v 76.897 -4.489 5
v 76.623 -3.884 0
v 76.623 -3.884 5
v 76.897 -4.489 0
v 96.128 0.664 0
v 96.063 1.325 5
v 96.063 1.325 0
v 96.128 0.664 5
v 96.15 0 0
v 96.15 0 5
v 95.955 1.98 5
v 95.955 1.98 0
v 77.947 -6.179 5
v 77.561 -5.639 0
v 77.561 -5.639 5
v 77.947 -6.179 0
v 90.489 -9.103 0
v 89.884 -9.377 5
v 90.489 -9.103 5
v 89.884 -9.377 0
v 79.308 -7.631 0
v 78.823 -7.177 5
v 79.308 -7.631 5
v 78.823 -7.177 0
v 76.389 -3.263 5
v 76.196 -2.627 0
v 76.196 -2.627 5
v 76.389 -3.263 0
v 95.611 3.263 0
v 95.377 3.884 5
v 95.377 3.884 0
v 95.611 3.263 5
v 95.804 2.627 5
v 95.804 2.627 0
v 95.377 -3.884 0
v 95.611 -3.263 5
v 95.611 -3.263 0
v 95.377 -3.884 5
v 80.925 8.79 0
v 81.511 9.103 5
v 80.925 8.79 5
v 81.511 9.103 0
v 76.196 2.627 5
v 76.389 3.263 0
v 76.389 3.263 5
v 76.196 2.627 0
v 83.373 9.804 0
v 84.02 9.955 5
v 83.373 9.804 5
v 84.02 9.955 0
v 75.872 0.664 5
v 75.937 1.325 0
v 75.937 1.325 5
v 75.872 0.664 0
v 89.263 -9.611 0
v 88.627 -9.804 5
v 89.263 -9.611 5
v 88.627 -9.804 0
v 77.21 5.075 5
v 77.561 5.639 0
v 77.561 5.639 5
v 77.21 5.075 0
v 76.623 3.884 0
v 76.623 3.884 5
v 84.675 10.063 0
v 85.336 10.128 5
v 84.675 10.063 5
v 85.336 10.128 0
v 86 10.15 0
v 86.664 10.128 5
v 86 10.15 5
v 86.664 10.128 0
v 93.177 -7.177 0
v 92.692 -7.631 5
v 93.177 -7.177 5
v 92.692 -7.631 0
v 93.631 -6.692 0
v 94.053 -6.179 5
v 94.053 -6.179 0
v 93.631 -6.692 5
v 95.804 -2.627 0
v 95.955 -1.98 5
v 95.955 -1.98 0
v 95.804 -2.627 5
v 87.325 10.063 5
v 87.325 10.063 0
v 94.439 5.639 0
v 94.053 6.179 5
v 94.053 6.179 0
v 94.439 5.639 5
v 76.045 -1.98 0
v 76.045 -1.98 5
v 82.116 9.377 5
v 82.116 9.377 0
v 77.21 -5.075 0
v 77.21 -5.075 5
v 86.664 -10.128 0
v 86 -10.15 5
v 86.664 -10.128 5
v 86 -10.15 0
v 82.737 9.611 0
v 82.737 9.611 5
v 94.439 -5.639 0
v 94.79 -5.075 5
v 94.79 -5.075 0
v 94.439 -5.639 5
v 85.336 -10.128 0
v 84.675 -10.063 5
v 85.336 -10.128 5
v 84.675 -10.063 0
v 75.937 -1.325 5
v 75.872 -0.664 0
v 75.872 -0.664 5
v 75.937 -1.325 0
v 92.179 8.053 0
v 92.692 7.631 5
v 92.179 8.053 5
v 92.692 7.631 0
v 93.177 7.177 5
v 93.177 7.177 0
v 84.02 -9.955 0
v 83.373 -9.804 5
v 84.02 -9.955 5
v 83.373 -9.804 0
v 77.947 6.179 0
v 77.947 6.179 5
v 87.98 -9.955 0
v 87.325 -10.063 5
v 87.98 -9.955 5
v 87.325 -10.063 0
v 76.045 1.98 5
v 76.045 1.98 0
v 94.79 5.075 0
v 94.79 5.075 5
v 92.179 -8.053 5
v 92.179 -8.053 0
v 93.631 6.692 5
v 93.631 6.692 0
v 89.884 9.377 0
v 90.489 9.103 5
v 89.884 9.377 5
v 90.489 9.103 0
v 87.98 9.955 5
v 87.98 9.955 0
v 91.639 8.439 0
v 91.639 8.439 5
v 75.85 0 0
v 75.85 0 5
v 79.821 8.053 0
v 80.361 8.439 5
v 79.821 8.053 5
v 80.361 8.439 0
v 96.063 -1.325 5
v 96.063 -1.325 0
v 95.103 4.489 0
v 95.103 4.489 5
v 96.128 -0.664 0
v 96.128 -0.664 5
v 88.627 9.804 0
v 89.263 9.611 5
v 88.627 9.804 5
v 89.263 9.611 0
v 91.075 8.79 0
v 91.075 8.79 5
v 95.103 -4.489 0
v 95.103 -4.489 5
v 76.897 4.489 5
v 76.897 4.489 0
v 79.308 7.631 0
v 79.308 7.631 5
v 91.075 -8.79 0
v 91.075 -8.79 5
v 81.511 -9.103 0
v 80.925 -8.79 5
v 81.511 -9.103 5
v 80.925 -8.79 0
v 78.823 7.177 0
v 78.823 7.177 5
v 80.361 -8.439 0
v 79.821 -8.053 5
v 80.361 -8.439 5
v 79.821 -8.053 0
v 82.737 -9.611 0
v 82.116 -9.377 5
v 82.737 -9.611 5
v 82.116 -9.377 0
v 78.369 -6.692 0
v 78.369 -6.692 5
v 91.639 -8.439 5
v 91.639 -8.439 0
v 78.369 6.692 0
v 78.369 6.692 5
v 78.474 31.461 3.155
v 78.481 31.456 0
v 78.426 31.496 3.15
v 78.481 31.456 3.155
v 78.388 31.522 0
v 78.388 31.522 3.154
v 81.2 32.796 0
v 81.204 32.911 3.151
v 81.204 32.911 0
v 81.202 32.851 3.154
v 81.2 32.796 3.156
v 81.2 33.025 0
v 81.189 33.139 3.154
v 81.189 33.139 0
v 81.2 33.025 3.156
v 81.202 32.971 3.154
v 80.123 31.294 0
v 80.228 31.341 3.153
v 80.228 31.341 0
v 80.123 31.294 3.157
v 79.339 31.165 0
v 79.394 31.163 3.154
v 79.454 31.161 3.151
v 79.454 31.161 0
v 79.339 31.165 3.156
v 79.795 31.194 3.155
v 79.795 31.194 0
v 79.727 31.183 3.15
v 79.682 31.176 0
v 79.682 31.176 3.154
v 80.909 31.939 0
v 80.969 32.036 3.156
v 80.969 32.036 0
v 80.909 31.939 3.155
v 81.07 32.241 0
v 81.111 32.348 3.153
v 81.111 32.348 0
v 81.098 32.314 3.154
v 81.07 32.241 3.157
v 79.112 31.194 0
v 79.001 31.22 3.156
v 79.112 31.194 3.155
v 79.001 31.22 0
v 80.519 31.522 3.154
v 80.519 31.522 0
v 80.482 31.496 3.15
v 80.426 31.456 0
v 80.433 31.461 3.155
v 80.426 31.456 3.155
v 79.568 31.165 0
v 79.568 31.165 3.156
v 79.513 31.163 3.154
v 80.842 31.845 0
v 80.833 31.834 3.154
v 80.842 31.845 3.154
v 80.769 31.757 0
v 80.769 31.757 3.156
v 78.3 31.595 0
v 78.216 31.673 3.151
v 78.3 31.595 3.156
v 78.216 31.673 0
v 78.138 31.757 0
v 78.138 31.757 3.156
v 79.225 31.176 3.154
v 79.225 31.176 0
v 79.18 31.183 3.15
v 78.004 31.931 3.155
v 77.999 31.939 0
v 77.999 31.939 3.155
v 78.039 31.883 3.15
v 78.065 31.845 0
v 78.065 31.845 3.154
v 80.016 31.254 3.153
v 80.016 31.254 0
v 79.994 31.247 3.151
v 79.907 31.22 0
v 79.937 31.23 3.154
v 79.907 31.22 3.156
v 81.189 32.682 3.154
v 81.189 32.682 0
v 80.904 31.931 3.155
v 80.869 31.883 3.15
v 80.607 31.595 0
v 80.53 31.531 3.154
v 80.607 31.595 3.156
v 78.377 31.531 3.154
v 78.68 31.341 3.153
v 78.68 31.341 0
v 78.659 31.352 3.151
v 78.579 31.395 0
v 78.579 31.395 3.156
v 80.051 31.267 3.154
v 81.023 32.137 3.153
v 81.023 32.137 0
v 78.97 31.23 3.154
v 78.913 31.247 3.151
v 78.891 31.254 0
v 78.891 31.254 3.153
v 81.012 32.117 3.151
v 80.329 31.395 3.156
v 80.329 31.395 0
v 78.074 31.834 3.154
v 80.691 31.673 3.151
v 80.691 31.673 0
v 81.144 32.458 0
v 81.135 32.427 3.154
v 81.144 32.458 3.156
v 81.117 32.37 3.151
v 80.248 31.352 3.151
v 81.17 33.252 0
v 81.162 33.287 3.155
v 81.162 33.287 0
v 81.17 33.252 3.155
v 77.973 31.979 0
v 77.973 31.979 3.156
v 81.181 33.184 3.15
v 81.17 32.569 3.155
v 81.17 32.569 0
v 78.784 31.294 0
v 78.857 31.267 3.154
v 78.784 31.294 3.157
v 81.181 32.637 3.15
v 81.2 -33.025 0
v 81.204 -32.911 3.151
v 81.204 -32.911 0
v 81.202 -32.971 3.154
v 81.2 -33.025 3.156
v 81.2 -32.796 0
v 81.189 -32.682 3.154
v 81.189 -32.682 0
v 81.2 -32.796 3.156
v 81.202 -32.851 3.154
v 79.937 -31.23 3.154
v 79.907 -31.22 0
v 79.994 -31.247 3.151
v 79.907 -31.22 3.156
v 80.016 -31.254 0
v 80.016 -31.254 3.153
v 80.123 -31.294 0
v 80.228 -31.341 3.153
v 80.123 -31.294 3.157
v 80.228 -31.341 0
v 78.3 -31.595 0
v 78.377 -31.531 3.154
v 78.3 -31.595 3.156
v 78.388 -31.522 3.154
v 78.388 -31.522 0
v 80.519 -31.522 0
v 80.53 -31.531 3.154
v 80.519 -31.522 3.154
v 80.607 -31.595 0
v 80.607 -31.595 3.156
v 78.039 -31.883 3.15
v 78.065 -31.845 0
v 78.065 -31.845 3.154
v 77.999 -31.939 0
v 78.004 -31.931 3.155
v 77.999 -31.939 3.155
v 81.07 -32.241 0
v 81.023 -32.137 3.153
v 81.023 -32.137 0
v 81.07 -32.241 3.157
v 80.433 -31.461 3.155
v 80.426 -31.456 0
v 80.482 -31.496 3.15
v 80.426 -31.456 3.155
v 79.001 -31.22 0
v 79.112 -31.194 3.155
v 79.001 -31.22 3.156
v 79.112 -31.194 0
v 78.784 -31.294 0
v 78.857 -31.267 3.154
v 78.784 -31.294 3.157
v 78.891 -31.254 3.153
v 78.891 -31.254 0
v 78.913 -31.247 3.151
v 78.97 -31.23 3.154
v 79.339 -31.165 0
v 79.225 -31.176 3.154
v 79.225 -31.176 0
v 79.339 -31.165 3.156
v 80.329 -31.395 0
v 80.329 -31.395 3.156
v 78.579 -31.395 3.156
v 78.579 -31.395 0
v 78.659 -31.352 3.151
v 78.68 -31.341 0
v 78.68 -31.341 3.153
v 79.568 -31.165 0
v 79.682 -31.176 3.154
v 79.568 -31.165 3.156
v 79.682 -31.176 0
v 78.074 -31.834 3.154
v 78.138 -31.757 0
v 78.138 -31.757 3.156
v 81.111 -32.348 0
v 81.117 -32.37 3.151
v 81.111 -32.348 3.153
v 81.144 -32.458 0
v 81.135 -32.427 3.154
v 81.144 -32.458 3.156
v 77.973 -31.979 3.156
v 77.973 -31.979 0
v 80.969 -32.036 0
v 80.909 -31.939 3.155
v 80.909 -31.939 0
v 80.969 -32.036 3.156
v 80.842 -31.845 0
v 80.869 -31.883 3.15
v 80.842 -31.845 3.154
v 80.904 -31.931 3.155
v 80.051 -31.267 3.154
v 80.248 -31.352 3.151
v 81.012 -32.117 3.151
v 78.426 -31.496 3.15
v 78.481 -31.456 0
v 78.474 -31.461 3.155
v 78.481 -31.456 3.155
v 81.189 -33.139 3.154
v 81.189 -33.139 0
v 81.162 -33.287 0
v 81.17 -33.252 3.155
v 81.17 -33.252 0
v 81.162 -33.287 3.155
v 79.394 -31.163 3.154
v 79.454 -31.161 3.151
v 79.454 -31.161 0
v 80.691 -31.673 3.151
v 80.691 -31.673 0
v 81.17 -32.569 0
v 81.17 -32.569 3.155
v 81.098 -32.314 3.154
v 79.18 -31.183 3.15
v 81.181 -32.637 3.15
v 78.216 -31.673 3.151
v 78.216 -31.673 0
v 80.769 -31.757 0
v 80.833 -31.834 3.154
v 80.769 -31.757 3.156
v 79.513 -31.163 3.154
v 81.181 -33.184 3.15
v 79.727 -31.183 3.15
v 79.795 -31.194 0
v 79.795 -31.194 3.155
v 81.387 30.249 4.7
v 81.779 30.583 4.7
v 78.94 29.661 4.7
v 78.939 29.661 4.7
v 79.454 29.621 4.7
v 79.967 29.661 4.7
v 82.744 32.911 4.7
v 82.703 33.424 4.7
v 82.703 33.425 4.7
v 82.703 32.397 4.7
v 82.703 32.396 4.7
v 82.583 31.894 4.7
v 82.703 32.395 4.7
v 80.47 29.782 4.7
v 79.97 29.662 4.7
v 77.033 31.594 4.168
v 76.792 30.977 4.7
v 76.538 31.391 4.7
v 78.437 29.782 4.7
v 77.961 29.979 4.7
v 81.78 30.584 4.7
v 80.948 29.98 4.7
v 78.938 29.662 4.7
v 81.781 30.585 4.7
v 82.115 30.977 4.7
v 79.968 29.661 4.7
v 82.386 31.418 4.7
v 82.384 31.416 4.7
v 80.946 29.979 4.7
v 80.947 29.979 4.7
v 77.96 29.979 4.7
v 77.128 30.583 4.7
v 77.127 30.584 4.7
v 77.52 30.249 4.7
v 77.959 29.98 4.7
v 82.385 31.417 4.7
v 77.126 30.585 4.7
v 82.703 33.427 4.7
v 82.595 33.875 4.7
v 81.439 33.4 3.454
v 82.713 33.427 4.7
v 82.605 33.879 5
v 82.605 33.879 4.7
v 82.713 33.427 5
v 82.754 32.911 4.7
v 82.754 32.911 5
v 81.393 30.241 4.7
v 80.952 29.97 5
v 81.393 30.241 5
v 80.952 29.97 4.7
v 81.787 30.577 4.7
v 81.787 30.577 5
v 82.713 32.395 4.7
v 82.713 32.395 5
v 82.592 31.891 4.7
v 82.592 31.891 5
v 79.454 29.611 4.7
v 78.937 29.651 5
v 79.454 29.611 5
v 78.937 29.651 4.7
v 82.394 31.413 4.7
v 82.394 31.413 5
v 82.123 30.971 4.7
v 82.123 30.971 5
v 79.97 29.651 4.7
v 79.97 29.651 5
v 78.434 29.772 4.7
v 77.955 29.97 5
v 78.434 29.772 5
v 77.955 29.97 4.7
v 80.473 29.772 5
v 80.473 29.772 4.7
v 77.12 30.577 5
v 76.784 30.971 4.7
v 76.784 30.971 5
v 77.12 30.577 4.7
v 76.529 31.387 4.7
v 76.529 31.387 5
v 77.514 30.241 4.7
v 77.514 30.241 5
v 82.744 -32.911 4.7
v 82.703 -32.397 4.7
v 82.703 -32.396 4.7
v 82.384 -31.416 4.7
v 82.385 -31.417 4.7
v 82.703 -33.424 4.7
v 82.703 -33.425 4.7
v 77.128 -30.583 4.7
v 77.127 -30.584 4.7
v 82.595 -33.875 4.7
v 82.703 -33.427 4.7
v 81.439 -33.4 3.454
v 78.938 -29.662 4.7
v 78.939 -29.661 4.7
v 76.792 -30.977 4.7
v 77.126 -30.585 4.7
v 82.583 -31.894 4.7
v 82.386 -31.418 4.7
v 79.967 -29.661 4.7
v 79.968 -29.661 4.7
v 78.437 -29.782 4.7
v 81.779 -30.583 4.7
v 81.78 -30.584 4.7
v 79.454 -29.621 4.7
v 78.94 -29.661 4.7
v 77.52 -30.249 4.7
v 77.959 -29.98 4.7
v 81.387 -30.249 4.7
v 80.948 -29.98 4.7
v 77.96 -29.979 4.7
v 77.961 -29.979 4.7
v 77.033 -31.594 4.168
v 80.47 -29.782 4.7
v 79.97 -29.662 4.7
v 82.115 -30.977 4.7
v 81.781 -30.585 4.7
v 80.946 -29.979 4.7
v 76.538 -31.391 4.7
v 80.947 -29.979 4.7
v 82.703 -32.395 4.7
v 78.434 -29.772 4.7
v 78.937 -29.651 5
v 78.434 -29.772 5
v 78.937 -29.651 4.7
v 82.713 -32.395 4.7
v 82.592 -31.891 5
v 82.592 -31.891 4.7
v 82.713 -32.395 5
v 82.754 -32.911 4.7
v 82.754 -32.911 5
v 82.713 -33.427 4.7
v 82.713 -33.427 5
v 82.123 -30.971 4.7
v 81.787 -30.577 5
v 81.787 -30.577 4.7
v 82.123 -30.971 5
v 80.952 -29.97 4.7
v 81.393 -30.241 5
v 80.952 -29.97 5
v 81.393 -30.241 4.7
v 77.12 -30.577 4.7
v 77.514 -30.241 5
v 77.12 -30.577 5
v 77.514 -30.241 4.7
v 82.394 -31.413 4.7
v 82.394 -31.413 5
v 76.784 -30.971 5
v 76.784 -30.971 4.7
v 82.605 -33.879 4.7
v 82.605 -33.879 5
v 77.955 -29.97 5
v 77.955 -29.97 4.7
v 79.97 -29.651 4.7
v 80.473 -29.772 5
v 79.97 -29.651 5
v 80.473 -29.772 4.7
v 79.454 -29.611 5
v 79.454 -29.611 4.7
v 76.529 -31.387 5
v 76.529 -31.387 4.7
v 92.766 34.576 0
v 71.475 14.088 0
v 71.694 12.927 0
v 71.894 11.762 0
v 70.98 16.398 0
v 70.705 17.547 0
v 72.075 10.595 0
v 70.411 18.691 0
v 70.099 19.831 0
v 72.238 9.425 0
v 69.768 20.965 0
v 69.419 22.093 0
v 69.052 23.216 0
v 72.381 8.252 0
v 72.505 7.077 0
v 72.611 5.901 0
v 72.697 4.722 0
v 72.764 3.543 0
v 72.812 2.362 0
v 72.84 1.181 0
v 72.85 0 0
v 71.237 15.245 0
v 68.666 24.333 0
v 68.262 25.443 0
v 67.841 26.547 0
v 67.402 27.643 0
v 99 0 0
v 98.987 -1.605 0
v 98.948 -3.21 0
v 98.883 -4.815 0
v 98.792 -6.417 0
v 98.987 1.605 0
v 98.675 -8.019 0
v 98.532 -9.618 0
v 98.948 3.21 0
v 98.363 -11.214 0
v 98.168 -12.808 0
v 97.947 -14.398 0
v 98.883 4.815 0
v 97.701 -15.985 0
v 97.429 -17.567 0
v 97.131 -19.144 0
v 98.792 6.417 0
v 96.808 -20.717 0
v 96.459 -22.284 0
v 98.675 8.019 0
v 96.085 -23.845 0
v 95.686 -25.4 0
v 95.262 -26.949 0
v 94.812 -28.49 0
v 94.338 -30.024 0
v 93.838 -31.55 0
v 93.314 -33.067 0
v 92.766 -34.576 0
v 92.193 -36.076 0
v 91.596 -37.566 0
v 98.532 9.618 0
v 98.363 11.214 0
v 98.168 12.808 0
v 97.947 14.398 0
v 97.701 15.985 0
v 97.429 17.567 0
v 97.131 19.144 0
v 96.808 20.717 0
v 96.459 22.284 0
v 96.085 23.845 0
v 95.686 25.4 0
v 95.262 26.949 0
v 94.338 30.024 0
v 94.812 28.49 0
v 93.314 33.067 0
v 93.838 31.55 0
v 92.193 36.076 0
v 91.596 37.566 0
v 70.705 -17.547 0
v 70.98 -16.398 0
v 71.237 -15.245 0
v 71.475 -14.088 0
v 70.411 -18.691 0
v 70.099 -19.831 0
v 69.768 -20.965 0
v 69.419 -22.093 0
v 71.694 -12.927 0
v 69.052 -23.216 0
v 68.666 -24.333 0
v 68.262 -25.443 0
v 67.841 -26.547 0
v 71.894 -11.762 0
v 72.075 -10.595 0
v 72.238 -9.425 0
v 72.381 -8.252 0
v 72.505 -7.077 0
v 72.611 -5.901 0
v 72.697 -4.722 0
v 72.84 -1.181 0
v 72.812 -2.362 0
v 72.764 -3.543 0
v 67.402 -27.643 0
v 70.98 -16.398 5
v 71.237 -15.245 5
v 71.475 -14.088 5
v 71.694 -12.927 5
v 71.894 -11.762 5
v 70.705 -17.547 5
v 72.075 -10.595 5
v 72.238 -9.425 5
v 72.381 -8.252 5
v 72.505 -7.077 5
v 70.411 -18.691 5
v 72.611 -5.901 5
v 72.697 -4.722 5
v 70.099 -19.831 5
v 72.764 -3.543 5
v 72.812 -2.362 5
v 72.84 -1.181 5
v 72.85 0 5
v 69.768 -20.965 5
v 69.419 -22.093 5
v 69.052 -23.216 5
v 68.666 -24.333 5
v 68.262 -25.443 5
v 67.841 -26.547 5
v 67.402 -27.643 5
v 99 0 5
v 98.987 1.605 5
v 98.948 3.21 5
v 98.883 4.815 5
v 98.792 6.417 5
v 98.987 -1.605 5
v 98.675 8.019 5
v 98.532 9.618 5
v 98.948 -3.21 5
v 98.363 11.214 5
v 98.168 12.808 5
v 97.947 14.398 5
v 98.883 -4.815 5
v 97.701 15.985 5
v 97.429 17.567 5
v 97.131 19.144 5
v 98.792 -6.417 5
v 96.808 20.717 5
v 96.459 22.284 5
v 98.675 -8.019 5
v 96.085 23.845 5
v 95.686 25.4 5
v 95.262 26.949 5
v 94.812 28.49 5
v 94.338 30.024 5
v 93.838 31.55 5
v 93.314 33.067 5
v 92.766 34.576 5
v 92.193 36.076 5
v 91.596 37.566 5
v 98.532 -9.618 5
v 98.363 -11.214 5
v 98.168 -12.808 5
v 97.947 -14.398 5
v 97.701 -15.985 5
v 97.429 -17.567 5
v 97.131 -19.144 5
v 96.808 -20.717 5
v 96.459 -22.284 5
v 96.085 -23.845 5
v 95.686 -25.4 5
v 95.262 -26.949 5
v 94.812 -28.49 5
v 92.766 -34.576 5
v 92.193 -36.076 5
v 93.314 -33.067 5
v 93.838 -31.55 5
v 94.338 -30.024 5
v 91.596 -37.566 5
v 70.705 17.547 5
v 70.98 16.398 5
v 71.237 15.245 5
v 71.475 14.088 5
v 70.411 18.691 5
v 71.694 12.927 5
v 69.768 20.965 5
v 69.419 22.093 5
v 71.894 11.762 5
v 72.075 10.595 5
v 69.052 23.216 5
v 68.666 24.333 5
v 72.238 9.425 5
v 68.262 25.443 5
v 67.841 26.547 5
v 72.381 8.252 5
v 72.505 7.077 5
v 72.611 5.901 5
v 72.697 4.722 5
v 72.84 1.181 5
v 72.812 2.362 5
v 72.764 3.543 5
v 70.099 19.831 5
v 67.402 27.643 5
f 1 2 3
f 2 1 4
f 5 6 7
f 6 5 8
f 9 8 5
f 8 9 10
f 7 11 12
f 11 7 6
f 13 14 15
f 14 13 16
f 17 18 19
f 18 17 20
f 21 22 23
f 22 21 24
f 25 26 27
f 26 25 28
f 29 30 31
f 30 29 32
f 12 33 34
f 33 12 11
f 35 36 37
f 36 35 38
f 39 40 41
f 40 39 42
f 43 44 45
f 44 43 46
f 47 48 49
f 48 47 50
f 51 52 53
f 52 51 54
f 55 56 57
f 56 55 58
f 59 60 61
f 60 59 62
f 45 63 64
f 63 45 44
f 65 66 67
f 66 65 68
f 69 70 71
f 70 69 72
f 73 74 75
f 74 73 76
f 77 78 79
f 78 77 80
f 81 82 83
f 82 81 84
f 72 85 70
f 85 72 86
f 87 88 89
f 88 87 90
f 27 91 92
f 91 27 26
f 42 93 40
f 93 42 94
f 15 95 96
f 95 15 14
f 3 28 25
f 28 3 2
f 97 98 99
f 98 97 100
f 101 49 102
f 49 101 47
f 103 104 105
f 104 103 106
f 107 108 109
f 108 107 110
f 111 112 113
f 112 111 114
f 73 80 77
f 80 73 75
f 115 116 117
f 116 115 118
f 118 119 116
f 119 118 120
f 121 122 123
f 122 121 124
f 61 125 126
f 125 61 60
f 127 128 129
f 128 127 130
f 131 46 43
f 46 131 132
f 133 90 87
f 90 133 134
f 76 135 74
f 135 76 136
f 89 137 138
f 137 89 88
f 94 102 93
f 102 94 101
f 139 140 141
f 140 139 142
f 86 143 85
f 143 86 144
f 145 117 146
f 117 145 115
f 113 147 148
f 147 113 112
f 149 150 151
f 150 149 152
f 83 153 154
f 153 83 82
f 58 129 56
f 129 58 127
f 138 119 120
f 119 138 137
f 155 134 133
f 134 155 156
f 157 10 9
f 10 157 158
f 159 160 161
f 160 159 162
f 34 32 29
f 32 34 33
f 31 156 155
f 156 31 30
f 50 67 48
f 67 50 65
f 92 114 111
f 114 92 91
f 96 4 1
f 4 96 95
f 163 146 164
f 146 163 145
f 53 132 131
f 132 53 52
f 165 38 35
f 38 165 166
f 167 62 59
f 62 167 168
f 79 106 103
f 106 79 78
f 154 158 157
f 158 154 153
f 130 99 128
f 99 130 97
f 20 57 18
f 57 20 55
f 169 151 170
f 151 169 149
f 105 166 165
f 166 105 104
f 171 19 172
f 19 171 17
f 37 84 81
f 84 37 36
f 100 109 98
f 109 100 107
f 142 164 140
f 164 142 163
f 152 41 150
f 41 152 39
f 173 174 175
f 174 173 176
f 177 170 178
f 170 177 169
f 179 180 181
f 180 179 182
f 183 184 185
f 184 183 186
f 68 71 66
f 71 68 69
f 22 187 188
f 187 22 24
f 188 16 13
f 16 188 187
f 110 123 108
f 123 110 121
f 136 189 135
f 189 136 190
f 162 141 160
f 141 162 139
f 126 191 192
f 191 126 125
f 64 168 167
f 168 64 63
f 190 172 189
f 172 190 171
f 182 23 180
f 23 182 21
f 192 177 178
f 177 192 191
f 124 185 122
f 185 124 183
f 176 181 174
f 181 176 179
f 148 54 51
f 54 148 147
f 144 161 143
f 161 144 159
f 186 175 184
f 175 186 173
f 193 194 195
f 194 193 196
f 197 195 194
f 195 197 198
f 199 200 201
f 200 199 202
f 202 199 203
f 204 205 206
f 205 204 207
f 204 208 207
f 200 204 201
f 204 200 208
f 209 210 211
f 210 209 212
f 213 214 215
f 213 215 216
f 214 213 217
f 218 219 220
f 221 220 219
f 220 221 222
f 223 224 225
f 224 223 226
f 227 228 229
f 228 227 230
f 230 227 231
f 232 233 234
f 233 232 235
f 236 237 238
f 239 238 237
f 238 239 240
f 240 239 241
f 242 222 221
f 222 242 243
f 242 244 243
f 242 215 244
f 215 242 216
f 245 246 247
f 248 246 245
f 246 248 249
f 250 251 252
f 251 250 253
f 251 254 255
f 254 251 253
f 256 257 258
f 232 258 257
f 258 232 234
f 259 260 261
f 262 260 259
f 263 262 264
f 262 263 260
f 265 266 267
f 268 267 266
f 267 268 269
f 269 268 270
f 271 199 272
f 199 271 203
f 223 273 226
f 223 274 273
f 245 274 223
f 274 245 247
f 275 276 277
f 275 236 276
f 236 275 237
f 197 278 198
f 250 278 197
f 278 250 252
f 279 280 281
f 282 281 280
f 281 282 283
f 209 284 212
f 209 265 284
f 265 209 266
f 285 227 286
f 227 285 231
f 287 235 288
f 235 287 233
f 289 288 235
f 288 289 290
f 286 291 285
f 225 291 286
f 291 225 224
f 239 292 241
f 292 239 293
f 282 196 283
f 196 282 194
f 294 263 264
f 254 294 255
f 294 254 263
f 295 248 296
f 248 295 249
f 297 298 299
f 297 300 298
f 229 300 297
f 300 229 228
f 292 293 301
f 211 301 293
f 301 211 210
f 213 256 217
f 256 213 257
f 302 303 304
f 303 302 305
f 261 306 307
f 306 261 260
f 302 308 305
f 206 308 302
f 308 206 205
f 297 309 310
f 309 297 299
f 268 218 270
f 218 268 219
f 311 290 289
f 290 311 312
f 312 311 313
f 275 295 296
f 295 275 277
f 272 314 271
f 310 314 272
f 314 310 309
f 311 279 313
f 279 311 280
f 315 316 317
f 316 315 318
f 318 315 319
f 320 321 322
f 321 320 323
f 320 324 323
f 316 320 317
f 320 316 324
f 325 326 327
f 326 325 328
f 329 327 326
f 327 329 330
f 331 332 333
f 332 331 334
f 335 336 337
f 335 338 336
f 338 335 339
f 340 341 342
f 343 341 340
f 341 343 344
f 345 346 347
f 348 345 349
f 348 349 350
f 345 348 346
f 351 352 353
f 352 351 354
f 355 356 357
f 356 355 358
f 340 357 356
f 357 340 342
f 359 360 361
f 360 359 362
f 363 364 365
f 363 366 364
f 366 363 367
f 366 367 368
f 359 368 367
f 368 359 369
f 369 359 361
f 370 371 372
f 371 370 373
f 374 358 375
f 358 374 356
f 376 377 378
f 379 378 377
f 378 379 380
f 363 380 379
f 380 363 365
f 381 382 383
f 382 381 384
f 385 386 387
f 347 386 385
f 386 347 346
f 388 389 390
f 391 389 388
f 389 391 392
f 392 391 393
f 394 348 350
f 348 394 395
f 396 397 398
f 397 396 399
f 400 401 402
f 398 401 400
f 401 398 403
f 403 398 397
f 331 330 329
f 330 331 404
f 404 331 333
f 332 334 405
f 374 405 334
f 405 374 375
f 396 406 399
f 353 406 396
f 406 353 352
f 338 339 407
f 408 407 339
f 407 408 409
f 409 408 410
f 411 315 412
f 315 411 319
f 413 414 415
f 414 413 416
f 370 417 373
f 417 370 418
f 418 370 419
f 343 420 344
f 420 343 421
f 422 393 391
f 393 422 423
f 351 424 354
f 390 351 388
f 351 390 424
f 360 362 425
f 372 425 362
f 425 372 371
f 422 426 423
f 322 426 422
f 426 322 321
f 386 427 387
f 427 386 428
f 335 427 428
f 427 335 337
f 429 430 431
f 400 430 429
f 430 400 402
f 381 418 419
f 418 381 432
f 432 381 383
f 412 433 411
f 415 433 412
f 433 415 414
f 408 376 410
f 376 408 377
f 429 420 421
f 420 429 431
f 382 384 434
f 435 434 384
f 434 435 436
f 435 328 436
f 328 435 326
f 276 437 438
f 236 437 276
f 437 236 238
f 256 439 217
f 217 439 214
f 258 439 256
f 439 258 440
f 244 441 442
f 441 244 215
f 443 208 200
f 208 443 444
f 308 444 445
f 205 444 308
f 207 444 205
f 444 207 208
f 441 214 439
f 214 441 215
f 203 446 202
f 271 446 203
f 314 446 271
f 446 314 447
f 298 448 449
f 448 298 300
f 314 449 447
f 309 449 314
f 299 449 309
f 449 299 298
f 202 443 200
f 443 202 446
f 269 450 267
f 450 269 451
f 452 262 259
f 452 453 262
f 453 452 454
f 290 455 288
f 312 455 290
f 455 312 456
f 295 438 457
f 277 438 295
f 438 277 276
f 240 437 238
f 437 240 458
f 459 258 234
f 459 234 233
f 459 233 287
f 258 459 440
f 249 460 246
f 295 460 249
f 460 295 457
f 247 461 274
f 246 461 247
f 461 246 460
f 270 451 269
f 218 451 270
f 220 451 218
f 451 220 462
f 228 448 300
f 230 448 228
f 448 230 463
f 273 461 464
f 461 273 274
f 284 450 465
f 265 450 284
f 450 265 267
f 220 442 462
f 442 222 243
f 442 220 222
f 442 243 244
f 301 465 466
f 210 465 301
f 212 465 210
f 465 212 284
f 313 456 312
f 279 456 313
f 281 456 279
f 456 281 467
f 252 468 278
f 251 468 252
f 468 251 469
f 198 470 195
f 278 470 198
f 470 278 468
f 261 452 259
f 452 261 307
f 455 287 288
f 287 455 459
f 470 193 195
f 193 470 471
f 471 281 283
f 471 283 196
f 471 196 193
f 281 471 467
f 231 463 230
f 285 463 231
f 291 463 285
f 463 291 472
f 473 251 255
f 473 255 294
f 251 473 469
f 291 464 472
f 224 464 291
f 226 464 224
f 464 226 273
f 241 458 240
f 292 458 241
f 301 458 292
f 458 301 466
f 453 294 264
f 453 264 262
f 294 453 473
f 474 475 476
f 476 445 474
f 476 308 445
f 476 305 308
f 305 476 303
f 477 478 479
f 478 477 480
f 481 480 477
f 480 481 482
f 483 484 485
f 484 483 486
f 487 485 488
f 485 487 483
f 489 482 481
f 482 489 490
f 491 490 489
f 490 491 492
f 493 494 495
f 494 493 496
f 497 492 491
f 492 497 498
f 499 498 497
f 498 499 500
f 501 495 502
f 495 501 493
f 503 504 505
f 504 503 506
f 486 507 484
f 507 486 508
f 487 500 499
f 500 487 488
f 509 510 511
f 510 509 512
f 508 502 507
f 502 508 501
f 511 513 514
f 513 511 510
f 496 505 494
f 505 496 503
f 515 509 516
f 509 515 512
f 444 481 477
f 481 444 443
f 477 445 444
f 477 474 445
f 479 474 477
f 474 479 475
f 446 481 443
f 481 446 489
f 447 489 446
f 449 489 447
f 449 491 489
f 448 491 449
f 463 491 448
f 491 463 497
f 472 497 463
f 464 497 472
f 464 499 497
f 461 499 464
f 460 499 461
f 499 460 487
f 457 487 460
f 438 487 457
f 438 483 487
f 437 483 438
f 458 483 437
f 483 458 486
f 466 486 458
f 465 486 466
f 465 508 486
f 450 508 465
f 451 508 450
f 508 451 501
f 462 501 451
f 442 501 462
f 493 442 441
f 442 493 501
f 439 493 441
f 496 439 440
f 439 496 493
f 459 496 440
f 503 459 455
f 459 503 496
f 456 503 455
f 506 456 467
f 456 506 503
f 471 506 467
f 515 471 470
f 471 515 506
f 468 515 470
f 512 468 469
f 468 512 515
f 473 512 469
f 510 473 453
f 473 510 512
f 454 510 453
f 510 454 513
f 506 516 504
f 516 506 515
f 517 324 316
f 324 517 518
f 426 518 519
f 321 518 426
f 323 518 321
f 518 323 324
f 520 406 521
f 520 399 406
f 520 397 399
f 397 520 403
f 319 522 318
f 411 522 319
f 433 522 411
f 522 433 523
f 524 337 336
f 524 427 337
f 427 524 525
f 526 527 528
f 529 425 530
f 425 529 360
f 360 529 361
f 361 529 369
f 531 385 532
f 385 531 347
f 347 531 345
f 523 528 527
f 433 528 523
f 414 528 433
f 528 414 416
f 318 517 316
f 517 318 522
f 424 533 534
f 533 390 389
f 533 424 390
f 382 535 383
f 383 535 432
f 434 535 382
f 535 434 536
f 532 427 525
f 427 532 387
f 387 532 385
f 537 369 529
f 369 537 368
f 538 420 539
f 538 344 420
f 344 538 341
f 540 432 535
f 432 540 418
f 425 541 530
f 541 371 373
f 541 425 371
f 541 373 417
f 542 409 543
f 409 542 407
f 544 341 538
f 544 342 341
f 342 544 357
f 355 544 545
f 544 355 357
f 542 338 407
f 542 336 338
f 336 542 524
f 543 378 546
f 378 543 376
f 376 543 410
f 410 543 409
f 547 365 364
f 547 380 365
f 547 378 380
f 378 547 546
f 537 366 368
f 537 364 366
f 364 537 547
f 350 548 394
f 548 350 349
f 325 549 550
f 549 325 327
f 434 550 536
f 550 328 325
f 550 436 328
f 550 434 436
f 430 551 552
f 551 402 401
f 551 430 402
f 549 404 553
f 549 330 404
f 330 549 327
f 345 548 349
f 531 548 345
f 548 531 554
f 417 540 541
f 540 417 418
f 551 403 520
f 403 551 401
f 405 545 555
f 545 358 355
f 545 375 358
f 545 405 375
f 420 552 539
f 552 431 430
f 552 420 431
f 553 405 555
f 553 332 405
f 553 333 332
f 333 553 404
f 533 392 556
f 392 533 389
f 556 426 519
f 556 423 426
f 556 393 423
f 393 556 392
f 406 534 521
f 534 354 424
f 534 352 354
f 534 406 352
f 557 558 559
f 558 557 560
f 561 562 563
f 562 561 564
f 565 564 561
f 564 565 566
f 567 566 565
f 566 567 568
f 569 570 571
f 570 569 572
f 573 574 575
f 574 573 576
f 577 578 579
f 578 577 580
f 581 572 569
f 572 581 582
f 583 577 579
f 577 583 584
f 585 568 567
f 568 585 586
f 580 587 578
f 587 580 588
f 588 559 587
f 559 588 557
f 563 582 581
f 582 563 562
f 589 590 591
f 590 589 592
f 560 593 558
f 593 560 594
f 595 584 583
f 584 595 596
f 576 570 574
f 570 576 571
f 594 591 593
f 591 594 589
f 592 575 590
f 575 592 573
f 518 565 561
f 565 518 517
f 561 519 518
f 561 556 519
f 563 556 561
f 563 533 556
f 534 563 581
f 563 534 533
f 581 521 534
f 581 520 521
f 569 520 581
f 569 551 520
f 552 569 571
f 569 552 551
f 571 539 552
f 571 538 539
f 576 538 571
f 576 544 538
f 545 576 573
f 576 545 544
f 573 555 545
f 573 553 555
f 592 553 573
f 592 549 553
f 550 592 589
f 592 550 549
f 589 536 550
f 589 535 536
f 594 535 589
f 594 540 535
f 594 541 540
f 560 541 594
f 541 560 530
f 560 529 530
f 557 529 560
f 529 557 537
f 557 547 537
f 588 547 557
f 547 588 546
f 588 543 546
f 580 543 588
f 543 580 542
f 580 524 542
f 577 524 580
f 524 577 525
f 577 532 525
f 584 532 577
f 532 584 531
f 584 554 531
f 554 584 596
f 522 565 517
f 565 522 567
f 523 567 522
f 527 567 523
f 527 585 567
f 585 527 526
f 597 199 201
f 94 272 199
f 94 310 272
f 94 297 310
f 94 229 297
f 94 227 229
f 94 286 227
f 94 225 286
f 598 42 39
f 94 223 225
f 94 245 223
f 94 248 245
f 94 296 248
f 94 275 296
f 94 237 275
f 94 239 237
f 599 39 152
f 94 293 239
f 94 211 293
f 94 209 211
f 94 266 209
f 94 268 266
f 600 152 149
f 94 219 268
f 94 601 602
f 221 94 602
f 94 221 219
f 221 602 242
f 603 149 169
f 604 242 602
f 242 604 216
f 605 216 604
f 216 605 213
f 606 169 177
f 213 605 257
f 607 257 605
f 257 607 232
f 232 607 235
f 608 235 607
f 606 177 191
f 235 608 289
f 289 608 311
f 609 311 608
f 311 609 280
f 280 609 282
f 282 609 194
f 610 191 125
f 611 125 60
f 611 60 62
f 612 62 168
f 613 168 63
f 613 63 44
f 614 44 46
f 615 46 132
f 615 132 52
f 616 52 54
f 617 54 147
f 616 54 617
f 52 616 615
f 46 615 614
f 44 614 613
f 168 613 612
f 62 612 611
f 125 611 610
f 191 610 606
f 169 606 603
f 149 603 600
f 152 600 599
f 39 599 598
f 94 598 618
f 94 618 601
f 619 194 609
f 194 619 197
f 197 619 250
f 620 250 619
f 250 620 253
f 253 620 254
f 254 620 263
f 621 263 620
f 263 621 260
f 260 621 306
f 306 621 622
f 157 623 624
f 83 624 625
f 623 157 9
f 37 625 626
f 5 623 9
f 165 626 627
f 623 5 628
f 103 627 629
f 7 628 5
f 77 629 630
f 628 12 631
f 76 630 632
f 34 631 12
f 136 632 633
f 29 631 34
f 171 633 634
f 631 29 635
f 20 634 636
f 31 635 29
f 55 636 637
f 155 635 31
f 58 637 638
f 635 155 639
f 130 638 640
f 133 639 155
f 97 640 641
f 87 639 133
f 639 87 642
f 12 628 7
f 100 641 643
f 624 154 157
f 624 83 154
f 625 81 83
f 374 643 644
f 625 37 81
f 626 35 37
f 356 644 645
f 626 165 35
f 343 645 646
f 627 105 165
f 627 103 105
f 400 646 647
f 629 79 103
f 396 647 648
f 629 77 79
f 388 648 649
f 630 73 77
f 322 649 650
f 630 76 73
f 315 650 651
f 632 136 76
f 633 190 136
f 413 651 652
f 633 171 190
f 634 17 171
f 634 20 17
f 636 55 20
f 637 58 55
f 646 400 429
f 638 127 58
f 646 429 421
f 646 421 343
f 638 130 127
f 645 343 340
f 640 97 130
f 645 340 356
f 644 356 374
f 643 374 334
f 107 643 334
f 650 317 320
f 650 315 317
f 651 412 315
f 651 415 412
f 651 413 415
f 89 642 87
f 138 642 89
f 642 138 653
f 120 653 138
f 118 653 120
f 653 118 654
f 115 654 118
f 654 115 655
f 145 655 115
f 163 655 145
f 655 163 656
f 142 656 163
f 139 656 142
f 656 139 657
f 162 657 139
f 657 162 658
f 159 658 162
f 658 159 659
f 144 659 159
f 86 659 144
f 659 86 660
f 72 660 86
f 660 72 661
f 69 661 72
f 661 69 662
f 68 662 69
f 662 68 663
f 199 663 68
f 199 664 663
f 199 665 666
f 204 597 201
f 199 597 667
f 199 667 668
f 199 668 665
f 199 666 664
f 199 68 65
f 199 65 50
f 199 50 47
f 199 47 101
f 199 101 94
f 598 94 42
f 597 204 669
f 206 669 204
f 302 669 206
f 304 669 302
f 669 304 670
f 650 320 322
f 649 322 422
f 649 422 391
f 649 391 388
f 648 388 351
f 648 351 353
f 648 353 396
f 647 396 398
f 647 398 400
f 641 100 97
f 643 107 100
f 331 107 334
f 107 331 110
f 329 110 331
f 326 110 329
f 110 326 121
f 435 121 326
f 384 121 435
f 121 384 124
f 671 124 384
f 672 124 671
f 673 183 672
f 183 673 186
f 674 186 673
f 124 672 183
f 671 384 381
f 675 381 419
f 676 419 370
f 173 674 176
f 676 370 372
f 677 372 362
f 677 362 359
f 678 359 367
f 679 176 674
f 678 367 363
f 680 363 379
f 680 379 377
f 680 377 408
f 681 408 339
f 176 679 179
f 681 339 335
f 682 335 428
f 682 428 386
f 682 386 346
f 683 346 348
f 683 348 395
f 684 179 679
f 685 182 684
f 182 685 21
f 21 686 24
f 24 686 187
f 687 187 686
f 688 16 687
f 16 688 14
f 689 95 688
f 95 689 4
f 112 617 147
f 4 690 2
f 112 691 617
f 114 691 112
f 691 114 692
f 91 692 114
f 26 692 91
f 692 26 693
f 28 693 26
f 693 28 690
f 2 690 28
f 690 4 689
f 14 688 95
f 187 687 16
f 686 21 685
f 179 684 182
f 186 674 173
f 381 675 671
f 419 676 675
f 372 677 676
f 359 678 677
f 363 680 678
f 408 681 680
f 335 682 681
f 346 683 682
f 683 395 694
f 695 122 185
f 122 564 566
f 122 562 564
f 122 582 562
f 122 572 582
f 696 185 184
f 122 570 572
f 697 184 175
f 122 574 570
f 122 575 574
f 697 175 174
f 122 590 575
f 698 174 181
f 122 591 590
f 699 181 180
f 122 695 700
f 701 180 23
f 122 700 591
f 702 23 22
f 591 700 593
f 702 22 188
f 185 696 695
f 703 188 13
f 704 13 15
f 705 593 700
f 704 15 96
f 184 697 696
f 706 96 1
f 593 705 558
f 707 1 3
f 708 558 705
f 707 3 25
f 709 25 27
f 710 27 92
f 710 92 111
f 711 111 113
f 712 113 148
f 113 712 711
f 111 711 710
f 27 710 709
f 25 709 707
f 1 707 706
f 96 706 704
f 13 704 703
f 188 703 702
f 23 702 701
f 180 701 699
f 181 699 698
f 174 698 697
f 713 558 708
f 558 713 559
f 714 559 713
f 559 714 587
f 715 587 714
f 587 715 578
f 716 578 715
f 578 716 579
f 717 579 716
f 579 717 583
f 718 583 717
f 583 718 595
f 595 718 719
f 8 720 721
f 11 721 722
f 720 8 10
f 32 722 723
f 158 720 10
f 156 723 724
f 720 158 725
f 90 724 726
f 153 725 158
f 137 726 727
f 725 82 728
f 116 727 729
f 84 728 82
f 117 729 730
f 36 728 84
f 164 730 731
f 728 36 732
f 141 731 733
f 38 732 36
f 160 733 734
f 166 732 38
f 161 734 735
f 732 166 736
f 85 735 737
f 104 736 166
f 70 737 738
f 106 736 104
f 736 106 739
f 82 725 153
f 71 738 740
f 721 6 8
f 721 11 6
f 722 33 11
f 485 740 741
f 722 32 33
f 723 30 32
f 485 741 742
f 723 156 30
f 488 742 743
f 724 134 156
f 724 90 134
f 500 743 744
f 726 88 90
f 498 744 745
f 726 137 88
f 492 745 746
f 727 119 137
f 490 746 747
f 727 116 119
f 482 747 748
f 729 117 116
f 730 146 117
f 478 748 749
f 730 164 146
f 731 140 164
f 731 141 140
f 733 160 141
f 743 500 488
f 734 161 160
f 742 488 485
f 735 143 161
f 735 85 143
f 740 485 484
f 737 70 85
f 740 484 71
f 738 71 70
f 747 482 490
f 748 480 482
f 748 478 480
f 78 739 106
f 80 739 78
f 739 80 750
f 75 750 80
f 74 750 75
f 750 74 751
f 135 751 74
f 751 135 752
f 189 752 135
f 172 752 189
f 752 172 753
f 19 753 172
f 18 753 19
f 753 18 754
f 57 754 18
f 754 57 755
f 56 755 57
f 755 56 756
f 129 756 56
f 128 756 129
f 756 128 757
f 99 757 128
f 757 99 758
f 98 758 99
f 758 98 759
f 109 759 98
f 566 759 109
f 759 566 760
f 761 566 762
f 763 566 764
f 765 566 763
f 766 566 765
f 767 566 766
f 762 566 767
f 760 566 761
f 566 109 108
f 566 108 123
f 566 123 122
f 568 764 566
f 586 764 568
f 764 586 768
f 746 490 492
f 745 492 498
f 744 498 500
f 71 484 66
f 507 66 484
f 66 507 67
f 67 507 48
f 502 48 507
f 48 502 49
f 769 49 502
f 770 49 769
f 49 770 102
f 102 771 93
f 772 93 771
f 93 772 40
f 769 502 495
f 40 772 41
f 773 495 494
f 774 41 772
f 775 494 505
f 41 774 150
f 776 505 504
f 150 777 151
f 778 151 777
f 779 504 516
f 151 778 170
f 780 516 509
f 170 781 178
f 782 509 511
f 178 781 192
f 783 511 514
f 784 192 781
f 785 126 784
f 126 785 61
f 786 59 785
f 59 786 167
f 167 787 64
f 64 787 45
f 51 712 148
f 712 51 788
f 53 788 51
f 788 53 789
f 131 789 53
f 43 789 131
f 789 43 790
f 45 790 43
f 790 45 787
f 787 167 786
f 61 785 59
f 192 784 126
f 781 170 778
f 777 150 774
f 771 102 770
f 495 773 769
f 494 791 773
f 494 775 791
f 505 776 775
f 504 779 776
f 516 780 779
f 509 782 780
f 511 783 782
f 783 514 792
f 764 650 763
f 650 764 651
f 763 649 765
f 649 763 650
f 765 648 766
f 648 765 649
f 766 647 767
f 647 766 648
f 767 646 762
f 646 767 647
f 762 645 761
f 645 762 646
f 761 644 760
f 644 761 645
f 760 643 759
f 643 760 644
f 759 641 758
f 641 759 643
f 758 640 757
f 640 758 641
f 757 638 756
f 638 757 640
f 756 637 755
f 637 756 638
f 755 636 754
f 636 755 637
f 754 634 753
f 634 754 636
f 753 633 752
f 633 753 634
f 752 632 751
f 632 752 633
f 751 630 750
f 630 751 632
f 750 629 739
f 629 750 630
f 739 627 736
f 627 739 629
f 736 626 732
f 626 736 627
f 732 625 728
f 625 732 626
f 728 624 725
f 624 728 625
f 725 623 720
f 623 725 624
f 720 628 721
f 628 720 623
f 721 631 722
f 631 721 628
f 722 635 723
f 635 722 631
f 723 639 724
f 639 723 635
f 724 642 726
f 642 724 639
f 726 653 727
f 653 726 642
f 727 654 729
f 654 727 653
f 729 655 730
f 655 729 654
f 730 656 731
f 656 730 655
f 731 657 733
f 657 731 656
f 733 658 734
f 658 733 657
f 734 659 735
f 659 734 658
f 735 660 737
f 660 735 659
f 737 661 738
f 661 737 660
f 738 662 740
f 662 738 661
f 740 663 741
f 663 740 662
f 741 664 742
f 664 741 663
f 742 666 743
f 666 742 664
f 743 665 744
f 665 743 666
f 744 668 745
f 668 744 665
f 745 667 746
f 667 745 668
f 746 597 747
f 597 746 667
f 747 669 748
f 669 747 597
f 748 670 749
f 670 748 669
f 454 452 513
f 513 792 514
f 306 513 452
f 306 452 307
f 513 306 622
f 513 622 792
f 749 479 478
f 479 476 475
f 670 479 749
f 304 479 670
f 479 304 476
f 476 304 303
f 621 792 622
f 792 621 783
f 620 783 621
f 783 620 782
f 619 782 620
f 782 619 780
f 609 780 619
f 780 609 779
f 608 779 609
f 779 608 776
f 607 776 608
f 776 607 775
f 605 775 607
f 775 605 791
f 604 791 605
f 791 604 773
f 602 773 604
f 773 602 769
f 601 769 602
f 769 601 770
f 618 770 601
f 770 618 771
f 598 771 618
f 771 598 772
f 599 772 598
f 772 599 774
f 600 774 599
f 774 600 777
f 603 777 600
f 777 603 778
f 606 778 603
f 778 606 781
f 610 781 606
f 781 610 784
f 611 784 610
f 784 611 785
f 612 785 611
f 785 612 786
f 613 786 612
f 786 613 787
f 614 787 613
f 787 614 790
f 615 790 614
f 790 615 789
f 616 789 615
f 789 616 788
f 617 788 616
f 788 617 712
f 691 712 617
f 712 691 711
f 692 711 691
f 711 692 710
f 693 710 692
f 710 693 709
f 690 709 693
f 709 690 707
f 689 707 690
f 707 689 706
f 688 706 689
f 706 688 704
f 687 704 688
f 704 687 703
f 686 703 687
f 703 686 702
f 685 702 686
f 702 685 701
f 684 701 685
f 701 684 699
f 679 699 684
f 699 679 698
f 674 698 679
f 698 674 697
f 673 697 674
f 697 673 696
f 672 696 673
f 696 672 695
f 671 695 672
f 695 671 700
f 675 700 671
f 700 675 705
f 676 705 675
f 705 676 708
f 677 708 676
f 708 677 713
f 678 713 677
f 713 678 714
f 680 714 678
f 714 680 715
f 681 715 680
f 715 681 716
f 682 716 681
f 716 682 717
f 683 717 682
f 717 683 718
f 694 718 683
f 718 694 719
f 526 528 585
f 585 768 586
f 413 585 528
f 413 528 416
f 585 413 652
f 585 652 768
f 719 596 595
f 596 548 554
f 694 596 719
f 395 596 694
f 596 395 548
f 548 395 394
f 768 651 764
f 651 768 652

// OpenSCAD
// file: parameters.scad
// =============================================================================
// Gen-CE — nightly 2026-10-14 (physics_scorer, honest magpylib watts)
// Wire-saver stator for the Gen-CD rotors: only 3.9 mm of copper (≈9 layers), magnet faces ≈6.5 mm apart, peak Bz ≈0.70 T. Uses ≈300 m of wire (≈80 m less than Gen-CD) and still clears Gen-BX; shares every rotor part, the steel, the frame rods and the bearing bridges with Gen-CD, so the two stators swap on the same machine.
// Clocking 0 deg (magnets N facing S) + D-flat keyed bore + index notch + flip-symmetric hole map.
// Windable 2-piece bobbin; turns = physics_scorer turns_fit; copper only between flanges.
// Steel back-iron: 2× Ø198 × 4.76 mm (3/16") mild-steel discs (steel_backiron_disc.dxf); magnets sit ON the steel
// (through-pockets) -> score with --back-iron. Night 2026-10-14.
// =============================================================================
topology            = "dual_rotor";

// --- Wire / winding (physics_scorer winding-fit) -------------------------------
wire_awg            = 26;
wire_od             = 0.45;     // insulated OD mm (bare 0.405)
fill_realistic      = 0.65;     // insulated-wire area / window (DENSE layered wind with a jig; scorer cap 0.65)
turns               = 288;       // = physics_scorer turns_fit (do NOT raise)
coil_former_type    = "bobbin";
coil_core_inset     = 18.10;     // radial copper build: hub = copper boundary inset by this
wind_build_axial    = 0.0;      // nothing proud of the flanges
wind_build_radial   = 0.0;

// --- Bobbin (base + lid) ---------------------------------------------------------
coil_id_r           = 64.00;    // copper boundary sector
coil_od_r           = 104.00;
span_deg            = 26.87;    // = pitch - 2*asin((wall+0.85)/coil_id_r) -> >=1.2 mm stator web
former_web          = 3.90;     // copper height between flanges (TALL copper: steel keeps Bz up)
flange_t            = 0.80;     // >= 0.8 mm FDM wall rule (tall winds push on the flanges)
wall                = 0.80;     // flange lip beyond copper
former_bare_h       = former_web + 2 * flange_t;
coil_envelope_h     = former_bare_h + 2 * wind_build_axial;
tab_w               = 7.0;
tab_len             = 7.0;
tab_h               = former_bare_h / 2;
pin_d               = 1.9;      // 1.75 mm filament locating pin
coil_mount_r        = coil_od_r + 0.2 + 4.0;
lead_y              = 1.6;
lead_slot_w         = 0.9;
lead_groove_d       = 0.6;

// --- Gap -------------------------------------------------------------------------
run_clear           = 0.50;     // rotor face -> flange
gap_spacer_h        = run_clear + wind_build_axial;
m2m                 = coil_envelope_h + 2 * run_clear;   // rotor face to rotor face (= gap_sleeve length)

// --- Stator ----------------------------------------------------------------------
coil_stations       = 12;
bay_clear           = 0.35;     // 0.35 mm: bobbin BASES print IN PLACE inside the stator bays (print-in-place gap), then pop out
stator_thick        = former_bare_h;                        // bobbins flush both faces
stator_od           = 229.0;
shaft_clear_stator  = 14.0;     // stator is static; gap sleeve OD 12 spins inside
stator_ir           = 58.85;    // ANNULAR stator: open centre (nested one-plate pack); inner rim 4.0 mm

// --- Rotor(s) --------------------------------------------------------------------
magnet_Br           = 1.43;     // N52
magnet_d_large      = 20.0;
magnet_h_large      = 5.0;      // one O20x5 per pocket
magnet_h_small      = 5.0;      // unused: no O5 pockets in this kit
halbach_magnetisation = "none";  // NO O5 assist magnets in this kit (scan: they lower the 4-pole score)
rotor_b_same_axis   = true;     // same-index magnets share one axis: N faces S across the gap
large_pocket_d      = 20.3;
small_pocket_d      = 5.3;
pocket_h            = 5.00;     // THROUGH the carrier: magnet back face sits on the steel disc (FLUSH seat: carrier = magnet height, magnet face level with the rotor face)
large_n             = 8;
R_large             = 86.0;
small_r_list        = [];       // no O5 pockets
carrier_od          = 198.0;
ring_ir             = 72.85;    // RING rotor: PLA magnet ring r ring_ir..carrier_od/2 (steel disc = structural rotor)
hub_flange_od       = 74.0;     // separate rotor_hub flange (inside the ring, flush with the ring face)
csk_d               = 6.6;      // M3 countersunk head pocket (ISO 10642 head 6.0 nominal) on the stator face
csk_depth           = 1.55;     // = (csk_d - m3_clear) / 2: 90 deg cone; head sits 0.3 mm below the face
n_seg               = 8;        // magnet-carrier ARCS per rotor (segmented carrier)
seg_deg             = 360 / n_seg;
seg_start           = -22.5;   // arc edge angle (between pocket 0 and its clamp bolt)
seg_kerf_deg        = 0.4;      // gap between neighbouring arcs on the steel
carrier_thick       = pocket_h;
hub_h               = 12.0;     // > steel_t + insert: radial set-screw clears the steel
hub_od              = 24.0;     // slim hub so the M4 brace rods fit at R~18 inside the coil ring
hub_insert_d        = 4.0;      // M3 heat-set insert, radial, bears on the D-flat
rotor_b_offset_deg  = 0.0;      // CLOCKING: magnets directly opposite
shaft_key           = "dflat";
dflat_depth         = 0.5;      // 8 mm shaft with 0.5 mm flat (7.5 across flat)
index_notch_d       = 3.0;

// --- Steel back-iron (buyable laser-cut) -------------------------------------------
steel_t             = 4.76;      // mild steel thickness (image method ignores it; sized from steel_flux.py so the return path stays well below saturation)
steel_center_hole   = 26.0;     // slips over the rotor hub (OD 24)
steel_od            = carrier_od;   // steel disc OD = rotor carrier OD

// --- Modular MAX interface ----------------------------------------------------------
shaft_bore          = 8.35;
dflat_x             = 4.0 - dflat_depth + (shaft_bore - 8.0) / 2;
bearing_d           = 21.85;
bearing_h           = 7.2;
m3_clear            = 3.5;
bolt_r_inner        = 30.0;     // M3 steel-disc clamp bolts (inside the magnet ring)
bolt_n_inner        = 4;
bolt_inner_angles   = [0, 90, 180, 270];
bolt_r_outer        = 86.0;     // second M3 steel-disc clamp ring
bolt_outer_angles   = [22.5, 67.5, 112.5, 157.5, 202.5, 247.5, 292.5, 337.5];
flange_bolt_r       = 109.5;     // frame rods: OUTSIDE the rotor OD (rotors spin inside them)
flange_bolt_n       = 4;
flange_bolt_offset  = 45.00;    // between coil stations -> never cuts a lead groove/tab
brace_r             = 18.0;
brace_d             = 4.3;      // temporary M4 jack rods (assembly only)
brace_n             = 4;
brace_angles        = [45, 135, 225, 315];          // flip-symmetric

spacer_pad_od       = 14.0;
spacer_pad_id       = m3_clear;
endbell_od          = 229.0;
endbell_thick       = 8.0;
endbell_shaft_clear = 10.0;
collar_h            = 10.0;
standoff_od         = 9.0;
frame_standoff_h    = run_clear + carrier_thick + hub_h + collar_h + 2.0;
sleeve_od           = 12.0;
plate_max_mm        = 410;

$fn = 64;
// main file
// Gen-CE — rotor A MAGNET-CARRIER ARC (2026-10-14 segmented nested pack). Print x8 per rotor (16 total
// for A+B; A and B arcs are the same print). Each arc covers seg_deg = 360/n_seg of the R_large ring and holds 1 O20 through-pockets
// + 1 countersunk M3 clamp holes (inter-pole, R bolt_r_outer) to the steel disc. The 4.76 mm mild-steel disc is the structural
// rotor; the separate rotor_hub (D-flat) bolts to it at R bolt_r_inner. Arcs pack around/inside the other parts on ONE plate,
// and any arc can be swapped/re-printed on its own (modular magnet carrier).
// CLOCKING: arc j spans [j*seg_deg + seg_start, (j+1)*seg_deg + seg_start - kerf]; pockets at i*360/large_n + rotor_b_offset_deg (= 0).
// The arc's bolt holes sit on the same 8-fold map as the pockets, so every arc position puts pockets on the same steel angles;
// pocket 0 = the pocket over the STEEL index notch (clocked to the hub D-flat). Rotor B arcs = same print, flipped to face A.
// Print countersinks UP (stator face up); the arc lies flat (5 mm), no supports.
include <parameters.scad>;
$fn = 96;
module ring_holes_2d() {
    for (a = bolt_outer_angles) translate([bolt_r_outer*cos(a), bolt_r_outer*sin(a)]) circle(d=m3_clear);
    translate([carrier_od/2, 0]) circle(d=index_notch_d, $fn=24);
}
module hub_holes_2d() {
    for (a = bolt_inner_angles) translate([bolt_r_inner*cos(a), bolt_r_inner*sin(a)]) circle(d=m3_clear);
    for (a = brace_angles) translate([brace_r*cos(a), brace_r*sin(a)]) circle(d=brace_d);
    translate([hub_flange_od/2, 0]) circle(d=index_notch_d, $fn=24);
}
module csk(r, angles) {   // M3 countersunk (ISO 10642, 90 deg) head pocket on the STATOR face, head 0.3 mm below the face
    for (a = angles) translate([r*cos(a), r*sin(a), 0]) {
        translate([0, 0, carrier_thick - 0.3 - csk_depth - 0.2]) cylinder(d1=m3_clear - 0.4, d2=csk_d, h=csk_depth + 0.2 + 0.01, $fn=40);
        translate([0, 0, carrier_thick - 0.3]) cylinder(d=csk_d, h=0.4, $fn=40);
    }
}

off = 0;
module arc_2d() {
    a0 = seg_start + seg_kerf_deg / 2; a1 = seg_start + seg_deg - seg_kerf_deg / 2;
    polygon(concat(
        [for (k = [0 : 48]) let(t = a0 + (a1 - a0) * k / 48) [(carrier_od/2) * cos(t), (carrier_od/2) * sin(t)]],
        [for (k = [48 : -1 : 0]) let(t = a0 + (a1 - a0) * k / 48) [ring_ir * cos(t), ring_ir * sin(t)]]));
}
difference() {
    linear_extrude(carrier_thick) arc_2d();
    for (i = [0 : large_n-1]) {
        a = i * 360 / large_n + off;
        translate([R_large*cos(a), R_large*sin(a), -0.1]) cylinder(d=large_pocket_d, h=carrier_thick + 0.2);
    }
    for (a = bolt_outer_angles) translate([bolt_r_outer*cos(a), bolt_r_outer*sin(a), -0.1]) cylinder(d=m3_clear, h=carrier_thick + 0.2);
    csk(bolt_r_outer, bolt_outer_angles);
}
